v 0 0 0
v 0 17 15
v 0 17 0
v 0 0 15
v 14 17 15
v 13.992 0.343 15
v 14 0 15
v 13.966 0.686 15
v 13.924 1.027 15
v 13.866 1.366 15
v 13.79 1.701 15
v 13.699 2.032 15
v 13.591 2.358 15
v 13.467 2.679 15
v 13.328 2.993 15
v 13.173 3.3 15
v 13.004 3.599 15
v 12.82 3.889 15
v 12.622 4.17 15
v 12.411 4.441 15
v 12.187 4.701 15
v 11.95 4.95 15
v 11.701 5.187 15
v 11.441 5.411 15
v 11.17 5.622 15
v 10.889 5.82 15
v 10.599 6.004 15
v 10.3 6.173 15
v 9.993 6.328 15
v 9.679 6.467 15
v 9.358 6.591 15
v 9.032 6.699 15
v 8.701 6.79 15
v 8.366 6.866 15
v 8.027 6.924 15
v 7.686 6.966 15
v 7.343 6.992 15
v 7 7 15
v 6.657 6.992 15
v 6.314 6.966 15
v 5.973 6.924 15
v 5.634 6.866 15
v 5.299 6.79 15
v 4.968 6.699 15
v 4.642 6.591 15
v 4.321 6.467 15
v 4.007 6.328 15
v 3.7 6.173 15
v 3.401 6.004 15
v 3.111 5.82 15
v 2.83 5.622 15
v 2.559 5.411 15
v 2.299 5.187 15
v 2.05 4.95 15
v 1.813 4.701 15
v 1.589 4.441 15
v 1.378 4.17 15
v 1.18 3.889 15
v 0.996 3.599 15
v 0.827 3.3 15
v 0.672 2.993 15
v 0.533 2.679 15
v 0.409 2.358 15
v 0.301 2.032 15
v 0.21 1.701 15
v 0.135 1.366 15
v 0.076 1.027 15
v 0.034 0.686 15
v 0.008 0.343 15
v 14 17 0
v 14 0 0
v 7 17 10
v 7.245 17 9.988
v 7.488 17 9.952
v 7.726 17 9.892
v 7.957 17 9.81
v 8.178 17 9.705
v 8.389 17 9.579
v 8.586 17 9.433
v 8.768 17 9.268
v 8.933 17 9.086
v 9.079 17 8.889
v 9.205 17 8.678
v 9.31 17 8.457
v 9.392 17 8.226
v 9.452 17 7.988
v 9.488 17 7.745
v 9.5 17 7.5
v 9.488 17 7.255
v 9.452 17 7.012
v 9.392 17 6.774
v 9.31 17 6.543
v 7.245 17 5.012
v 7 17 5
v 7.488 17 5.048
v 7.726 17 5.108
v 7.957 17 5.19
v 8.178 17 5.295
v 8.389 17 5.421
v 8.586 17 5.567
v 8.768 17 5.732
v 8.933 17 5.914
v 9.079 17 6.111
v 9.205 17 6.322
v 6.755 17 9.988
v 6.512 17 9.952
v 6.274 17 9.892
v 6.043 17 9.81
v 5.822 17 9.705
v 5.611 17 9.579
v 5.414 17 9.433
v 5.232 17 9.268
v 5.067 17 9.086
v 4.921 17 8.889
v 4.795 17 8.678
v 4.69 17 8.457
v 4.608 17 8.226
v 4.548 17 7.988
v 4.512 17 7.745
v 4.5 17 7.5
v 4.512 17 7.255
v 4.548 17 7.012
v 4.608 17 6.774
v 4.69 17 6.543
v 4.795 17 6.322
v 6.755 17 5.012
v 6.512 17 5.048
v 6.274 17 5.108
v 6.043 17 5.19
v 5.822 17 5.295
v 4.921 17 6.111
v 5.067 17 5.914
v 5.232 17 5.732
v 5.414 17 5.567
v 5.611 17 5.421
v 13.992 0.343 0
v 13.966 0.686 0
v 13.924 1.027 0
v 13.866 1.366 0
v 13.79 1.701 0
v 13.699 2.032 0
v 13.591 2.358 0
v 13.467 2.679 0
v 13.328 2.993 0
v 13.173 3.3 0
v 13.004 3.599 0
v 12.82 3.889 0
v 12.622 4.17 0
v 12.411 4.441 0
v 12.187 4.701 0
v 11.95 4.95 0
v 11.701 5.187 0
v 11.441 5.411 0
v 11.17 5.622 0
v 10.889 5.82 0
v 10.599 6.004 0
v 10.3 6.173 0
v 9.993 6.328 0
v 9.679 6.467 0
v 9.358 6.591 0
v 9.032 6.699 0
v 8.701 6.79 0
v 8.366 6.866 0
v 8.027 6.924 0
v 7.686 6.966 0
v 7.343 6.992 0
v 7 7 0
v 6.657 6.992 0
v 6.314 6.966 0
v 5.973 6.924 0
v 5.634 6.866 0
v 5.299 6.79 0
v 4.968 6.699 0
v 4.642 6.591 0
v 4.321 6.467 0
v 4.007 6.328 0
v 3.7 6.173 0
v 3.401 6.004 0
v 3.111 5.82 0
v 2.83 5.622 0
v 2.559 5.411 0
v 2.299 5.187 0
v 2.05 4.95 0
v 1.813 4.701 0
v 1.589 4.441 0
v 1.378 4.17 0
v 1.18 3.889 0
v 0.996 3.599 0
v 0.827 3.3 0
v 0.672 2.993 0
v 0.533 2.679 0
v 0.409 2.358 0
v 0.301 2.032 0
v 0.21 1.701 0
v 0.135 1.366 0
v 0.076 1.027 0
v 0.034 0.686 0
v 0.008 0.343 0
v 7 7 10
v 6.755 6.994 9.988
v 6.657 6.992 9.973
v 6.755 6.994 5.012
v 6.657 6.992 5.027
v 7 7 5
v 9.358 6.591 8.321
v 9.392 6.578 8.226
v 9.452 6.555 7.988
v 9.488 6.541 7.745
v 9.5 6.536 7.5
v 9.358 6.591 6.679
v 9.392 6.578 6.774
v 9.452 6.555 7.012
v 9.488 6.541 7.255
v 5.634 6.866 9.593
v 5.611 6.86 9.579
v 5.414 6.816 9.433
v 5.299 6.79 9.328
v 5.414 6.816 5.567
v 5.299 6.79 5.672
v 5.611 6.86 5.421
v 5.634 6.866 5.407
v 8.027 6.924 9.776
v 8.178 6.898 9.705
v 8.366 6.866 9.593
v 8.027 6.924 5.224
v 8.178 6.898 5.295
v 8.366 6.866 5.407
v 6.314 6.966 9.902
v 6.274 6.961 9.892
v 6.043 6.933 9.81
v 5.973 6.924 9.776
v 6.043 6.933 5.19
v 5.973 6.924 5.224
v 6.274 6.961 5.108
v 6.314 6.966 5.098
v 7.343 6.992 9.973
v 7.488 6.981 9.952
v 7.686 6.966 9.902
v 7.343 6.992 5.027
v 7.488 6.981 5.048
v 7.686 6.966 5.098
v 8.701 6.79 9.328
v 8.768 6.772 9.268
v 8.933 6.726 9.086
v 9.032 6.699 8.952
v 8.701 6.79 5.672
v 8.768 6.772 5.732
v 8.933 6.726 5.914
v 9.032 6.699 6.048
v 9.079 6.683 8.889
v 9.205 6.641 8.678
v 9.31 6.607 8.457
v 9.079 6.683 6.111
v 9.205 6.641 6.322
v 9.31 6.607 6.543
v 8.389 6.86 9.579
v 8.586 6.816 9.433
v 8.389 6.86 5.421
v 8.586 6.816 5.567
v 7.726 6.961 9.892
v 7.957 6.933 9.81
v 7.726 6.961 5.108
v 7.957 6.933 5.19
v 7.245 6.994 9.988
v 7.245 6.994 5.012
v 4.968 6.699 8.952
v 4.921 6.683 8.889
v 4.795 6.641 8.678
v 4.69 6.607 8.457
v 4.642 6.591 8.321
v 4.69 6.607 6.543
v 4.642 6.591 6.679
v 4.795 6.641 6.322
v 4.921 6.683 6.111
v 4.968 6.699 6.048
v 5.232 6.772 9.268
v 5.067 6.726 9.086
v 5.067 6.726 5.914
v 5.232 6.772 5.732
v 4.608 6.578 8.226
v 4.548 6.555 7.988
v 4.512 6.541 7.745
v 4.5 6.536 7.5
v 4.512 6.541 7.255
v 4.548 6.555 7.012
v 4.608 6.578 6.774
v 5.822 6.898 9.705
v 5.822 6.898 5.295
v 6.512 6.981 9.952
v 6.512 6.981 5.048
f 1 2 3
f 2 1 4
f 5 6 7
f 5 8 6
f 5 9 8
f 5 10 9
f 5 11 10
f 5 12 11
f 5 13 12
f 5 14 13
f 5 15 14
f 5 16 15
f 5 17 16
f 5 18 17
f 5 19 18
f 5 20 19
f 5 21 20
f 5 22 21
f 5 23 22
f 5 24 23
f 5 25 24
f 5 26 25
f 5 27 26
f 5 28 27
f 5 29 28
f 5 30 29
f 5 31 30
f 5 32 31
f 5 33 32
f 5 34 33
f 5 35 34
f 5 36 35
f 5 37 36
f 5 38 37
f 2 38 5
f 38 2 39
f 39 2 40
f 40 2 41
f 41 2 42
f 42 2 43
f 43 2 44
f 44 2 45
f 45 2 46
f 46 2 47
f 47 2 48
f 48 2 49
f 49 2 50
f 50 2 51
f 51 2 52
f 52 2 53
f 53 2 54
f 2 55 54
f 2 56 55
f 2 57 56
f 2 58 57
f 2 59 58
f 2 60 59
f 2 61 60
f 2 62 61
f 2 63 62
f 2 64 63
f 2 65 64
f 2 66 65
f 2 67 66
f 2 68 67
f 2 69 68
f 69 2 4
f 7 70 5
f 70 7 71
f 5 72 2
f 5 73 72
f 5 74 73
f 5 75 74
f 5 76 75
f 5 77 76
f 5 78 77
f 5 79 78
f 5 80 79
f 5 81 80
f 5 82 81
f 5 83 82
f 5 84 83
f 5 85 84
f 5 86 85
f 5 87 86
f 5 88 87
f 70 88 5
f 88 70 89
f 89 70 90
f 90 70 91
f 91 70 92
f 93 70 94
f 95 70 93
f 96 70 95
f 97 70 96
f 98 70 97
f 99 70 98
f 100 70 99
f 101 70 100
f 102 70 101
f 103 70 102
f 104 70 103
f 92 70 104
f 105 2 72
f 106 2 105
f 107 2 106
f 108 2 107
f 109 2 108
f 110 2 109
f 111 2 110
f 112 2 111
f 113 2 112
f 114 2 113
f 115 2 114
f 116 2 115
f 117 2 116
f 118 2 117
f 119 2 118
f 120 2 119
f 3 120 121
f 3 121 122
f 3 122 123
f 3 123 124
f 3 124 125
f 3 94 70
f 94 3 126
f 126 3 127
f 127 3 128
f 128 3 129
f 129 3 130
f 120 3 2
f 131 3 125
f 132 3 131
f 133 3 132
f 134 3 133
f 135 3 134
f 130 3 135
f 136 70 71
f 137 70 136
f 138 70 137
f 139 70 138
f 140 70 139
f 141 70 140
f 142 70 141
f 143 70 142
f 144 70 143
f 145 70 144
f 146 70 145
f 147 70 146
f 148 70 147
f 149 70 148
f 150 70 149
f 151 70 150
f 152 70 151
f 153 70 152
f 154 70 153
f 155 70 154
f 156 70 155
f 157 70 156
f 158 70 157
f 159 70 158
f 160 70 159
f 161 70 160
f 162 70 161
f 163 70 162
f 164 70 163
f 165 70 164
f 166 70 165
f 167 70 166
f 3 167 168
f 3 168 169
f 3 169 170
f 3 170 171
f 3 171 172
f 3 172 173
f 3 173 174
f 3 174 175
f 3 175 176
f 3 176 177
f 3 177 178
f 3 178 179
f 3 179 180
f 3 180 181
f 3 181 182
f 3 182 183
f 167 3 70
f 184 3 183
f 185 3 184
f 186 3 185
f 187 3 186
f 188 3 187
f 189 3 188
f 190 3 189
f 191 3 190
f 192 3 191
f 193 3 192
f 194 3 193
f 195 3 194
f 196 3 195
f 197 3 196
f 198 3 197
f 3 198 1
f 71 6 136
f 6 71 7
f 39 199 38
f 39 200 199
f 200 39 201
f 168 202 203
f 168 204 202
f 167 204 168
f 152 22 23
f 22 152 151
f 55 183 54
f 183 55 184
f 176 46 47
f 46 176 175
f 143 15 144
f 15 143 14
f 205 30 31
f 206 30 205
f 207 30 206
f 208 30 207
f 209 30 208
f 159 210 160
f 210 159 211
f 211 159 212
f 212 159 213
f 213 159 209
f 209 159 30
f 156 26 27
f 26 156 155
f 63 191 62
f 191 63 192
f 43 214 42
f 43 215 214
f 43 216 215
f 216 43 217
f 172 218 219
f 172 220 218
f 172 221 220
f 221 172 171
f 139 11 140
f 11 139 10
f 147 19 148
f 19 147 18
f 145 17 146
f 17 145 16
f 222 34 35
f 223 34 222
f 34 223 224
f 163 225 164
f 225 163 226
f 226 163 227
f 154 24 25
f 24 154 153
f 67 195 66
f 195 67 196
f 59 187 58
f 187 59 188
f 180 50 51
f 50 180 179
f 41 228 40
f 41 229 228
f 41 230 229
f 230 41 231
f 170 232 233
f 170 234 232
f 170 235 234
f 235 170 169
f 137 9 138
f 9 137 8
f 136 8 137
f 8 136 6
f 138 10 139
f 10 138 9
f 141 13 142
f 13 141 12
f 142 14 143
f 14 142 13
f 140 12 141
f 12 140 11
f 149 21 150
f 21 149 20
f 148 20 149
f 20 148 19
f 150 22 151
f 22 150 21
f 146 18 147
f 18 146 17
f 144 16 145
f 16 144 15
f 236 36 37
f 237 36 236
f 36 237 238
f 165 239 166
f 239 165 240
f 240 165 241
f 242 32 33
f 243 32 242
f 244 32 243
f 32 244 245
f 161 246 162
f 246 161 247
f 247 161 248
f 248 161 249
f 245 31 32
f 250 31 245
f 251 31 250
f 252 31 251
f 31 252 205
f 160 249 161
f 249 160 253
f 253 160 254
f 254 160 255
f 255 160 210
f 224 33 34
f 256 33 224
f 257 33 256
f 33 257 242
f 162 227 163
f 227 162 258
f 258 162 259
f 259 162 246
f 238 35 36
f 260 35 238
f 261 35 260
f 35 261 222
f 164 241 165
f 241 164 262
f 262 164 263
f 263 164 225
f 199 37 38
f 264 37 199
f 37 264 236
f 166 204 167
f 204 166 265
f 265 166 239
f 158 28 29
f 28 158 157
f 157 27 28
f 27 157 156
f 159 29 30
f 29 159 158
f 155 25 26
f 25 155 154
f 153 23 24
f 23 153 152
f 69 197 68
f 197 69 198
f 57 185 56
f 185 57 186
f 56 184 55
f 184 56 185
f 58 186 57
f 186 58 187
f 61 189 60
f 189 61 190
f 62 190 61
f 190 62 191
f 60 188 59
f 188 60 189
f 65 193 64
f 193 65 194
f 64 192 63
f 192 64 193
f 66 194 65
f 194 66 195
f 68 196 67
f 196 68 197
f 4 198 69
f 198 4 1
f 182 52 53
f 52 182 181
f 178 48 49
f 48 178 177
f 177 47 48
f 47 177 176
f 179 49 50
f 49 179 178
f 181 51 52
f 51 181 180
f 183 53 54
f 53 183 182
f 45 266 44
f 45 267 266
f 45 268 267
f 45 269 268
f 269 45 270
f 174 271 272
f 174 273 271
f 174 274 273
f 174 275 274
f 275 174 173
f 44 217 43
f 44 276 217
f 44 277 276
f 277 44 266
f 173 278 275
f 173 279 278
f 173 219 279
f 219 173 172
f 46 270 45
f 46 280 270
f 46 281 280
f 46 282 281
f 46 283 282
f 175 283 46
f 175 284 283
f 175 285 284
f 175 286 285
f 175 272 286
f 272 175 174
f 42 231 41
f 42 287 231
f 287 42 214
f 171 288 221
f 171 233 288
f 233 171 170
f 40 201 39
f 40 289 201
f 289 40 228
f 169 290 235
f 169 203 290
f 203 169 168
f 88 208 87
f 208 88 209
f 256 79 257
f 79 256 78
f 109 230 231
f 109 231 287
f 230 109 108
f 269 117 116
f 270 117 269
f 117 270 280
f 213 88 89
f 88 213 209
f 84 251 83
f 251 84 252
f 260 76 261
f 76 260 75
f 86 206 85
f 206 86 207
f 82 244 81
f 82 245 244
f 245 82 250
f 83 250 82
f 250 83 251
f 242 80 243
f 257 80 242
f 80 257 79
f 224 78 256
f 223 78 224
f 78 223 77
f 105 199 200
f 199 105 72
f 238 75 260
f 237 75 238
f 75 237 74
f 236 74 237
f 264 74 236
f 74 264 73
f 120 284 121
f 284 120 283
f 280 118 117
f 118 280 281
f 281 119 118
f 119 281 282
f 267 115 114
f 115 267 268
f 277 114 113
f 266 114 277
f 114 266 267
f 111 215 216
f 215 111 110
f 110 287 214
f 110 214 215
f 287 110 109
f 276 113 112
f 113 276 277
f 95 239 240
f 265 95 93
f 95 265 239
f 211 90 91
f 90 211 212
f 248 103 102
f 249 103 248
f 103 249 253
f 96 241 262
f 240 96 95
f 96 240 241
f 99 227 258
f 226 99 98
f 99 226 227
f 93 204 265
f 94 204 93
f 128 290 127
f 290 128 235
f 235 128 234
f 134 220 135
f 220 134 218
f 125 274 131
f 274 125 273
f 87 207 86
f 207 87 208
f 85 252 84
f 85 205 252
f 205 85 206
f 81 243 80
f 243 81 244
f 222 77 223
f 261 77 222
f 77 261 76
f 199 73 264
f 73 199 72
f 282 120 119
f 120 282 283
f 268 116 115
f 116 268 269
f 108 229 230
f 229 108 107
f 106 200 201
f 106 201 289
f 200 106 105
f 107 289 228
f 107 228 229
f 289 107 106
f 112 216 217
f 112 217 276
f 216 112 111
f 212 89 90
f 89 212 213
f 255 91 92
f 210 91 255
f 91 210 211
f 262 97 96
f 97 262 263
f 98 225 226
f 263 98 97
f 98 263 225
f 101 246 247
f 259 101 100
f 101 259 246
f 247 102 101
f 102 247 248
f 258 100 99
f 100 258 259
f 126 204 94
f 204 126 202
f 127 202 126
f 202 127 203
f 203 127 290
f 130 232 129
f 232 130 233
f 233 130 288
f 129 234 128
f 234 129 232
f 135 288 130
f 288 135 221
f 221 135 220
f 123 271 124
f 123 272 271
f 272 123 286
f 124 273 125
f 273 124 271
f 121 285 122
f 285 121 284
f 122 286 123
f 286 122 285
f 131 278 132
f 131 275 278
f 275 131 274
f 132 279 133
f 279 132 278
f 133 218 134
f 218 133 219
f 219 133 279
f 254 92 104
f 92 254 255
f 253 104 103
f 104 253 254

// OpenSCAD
difference(){
cube([14,10+14/2,15]);
translate([14/2,0,-5])cylinder(r=7,h=30,$fn=128);
translate([14/2,20,15/2])rotate([90,0,0])cylinder(r=5/2,h=30,$fn=64);
}
